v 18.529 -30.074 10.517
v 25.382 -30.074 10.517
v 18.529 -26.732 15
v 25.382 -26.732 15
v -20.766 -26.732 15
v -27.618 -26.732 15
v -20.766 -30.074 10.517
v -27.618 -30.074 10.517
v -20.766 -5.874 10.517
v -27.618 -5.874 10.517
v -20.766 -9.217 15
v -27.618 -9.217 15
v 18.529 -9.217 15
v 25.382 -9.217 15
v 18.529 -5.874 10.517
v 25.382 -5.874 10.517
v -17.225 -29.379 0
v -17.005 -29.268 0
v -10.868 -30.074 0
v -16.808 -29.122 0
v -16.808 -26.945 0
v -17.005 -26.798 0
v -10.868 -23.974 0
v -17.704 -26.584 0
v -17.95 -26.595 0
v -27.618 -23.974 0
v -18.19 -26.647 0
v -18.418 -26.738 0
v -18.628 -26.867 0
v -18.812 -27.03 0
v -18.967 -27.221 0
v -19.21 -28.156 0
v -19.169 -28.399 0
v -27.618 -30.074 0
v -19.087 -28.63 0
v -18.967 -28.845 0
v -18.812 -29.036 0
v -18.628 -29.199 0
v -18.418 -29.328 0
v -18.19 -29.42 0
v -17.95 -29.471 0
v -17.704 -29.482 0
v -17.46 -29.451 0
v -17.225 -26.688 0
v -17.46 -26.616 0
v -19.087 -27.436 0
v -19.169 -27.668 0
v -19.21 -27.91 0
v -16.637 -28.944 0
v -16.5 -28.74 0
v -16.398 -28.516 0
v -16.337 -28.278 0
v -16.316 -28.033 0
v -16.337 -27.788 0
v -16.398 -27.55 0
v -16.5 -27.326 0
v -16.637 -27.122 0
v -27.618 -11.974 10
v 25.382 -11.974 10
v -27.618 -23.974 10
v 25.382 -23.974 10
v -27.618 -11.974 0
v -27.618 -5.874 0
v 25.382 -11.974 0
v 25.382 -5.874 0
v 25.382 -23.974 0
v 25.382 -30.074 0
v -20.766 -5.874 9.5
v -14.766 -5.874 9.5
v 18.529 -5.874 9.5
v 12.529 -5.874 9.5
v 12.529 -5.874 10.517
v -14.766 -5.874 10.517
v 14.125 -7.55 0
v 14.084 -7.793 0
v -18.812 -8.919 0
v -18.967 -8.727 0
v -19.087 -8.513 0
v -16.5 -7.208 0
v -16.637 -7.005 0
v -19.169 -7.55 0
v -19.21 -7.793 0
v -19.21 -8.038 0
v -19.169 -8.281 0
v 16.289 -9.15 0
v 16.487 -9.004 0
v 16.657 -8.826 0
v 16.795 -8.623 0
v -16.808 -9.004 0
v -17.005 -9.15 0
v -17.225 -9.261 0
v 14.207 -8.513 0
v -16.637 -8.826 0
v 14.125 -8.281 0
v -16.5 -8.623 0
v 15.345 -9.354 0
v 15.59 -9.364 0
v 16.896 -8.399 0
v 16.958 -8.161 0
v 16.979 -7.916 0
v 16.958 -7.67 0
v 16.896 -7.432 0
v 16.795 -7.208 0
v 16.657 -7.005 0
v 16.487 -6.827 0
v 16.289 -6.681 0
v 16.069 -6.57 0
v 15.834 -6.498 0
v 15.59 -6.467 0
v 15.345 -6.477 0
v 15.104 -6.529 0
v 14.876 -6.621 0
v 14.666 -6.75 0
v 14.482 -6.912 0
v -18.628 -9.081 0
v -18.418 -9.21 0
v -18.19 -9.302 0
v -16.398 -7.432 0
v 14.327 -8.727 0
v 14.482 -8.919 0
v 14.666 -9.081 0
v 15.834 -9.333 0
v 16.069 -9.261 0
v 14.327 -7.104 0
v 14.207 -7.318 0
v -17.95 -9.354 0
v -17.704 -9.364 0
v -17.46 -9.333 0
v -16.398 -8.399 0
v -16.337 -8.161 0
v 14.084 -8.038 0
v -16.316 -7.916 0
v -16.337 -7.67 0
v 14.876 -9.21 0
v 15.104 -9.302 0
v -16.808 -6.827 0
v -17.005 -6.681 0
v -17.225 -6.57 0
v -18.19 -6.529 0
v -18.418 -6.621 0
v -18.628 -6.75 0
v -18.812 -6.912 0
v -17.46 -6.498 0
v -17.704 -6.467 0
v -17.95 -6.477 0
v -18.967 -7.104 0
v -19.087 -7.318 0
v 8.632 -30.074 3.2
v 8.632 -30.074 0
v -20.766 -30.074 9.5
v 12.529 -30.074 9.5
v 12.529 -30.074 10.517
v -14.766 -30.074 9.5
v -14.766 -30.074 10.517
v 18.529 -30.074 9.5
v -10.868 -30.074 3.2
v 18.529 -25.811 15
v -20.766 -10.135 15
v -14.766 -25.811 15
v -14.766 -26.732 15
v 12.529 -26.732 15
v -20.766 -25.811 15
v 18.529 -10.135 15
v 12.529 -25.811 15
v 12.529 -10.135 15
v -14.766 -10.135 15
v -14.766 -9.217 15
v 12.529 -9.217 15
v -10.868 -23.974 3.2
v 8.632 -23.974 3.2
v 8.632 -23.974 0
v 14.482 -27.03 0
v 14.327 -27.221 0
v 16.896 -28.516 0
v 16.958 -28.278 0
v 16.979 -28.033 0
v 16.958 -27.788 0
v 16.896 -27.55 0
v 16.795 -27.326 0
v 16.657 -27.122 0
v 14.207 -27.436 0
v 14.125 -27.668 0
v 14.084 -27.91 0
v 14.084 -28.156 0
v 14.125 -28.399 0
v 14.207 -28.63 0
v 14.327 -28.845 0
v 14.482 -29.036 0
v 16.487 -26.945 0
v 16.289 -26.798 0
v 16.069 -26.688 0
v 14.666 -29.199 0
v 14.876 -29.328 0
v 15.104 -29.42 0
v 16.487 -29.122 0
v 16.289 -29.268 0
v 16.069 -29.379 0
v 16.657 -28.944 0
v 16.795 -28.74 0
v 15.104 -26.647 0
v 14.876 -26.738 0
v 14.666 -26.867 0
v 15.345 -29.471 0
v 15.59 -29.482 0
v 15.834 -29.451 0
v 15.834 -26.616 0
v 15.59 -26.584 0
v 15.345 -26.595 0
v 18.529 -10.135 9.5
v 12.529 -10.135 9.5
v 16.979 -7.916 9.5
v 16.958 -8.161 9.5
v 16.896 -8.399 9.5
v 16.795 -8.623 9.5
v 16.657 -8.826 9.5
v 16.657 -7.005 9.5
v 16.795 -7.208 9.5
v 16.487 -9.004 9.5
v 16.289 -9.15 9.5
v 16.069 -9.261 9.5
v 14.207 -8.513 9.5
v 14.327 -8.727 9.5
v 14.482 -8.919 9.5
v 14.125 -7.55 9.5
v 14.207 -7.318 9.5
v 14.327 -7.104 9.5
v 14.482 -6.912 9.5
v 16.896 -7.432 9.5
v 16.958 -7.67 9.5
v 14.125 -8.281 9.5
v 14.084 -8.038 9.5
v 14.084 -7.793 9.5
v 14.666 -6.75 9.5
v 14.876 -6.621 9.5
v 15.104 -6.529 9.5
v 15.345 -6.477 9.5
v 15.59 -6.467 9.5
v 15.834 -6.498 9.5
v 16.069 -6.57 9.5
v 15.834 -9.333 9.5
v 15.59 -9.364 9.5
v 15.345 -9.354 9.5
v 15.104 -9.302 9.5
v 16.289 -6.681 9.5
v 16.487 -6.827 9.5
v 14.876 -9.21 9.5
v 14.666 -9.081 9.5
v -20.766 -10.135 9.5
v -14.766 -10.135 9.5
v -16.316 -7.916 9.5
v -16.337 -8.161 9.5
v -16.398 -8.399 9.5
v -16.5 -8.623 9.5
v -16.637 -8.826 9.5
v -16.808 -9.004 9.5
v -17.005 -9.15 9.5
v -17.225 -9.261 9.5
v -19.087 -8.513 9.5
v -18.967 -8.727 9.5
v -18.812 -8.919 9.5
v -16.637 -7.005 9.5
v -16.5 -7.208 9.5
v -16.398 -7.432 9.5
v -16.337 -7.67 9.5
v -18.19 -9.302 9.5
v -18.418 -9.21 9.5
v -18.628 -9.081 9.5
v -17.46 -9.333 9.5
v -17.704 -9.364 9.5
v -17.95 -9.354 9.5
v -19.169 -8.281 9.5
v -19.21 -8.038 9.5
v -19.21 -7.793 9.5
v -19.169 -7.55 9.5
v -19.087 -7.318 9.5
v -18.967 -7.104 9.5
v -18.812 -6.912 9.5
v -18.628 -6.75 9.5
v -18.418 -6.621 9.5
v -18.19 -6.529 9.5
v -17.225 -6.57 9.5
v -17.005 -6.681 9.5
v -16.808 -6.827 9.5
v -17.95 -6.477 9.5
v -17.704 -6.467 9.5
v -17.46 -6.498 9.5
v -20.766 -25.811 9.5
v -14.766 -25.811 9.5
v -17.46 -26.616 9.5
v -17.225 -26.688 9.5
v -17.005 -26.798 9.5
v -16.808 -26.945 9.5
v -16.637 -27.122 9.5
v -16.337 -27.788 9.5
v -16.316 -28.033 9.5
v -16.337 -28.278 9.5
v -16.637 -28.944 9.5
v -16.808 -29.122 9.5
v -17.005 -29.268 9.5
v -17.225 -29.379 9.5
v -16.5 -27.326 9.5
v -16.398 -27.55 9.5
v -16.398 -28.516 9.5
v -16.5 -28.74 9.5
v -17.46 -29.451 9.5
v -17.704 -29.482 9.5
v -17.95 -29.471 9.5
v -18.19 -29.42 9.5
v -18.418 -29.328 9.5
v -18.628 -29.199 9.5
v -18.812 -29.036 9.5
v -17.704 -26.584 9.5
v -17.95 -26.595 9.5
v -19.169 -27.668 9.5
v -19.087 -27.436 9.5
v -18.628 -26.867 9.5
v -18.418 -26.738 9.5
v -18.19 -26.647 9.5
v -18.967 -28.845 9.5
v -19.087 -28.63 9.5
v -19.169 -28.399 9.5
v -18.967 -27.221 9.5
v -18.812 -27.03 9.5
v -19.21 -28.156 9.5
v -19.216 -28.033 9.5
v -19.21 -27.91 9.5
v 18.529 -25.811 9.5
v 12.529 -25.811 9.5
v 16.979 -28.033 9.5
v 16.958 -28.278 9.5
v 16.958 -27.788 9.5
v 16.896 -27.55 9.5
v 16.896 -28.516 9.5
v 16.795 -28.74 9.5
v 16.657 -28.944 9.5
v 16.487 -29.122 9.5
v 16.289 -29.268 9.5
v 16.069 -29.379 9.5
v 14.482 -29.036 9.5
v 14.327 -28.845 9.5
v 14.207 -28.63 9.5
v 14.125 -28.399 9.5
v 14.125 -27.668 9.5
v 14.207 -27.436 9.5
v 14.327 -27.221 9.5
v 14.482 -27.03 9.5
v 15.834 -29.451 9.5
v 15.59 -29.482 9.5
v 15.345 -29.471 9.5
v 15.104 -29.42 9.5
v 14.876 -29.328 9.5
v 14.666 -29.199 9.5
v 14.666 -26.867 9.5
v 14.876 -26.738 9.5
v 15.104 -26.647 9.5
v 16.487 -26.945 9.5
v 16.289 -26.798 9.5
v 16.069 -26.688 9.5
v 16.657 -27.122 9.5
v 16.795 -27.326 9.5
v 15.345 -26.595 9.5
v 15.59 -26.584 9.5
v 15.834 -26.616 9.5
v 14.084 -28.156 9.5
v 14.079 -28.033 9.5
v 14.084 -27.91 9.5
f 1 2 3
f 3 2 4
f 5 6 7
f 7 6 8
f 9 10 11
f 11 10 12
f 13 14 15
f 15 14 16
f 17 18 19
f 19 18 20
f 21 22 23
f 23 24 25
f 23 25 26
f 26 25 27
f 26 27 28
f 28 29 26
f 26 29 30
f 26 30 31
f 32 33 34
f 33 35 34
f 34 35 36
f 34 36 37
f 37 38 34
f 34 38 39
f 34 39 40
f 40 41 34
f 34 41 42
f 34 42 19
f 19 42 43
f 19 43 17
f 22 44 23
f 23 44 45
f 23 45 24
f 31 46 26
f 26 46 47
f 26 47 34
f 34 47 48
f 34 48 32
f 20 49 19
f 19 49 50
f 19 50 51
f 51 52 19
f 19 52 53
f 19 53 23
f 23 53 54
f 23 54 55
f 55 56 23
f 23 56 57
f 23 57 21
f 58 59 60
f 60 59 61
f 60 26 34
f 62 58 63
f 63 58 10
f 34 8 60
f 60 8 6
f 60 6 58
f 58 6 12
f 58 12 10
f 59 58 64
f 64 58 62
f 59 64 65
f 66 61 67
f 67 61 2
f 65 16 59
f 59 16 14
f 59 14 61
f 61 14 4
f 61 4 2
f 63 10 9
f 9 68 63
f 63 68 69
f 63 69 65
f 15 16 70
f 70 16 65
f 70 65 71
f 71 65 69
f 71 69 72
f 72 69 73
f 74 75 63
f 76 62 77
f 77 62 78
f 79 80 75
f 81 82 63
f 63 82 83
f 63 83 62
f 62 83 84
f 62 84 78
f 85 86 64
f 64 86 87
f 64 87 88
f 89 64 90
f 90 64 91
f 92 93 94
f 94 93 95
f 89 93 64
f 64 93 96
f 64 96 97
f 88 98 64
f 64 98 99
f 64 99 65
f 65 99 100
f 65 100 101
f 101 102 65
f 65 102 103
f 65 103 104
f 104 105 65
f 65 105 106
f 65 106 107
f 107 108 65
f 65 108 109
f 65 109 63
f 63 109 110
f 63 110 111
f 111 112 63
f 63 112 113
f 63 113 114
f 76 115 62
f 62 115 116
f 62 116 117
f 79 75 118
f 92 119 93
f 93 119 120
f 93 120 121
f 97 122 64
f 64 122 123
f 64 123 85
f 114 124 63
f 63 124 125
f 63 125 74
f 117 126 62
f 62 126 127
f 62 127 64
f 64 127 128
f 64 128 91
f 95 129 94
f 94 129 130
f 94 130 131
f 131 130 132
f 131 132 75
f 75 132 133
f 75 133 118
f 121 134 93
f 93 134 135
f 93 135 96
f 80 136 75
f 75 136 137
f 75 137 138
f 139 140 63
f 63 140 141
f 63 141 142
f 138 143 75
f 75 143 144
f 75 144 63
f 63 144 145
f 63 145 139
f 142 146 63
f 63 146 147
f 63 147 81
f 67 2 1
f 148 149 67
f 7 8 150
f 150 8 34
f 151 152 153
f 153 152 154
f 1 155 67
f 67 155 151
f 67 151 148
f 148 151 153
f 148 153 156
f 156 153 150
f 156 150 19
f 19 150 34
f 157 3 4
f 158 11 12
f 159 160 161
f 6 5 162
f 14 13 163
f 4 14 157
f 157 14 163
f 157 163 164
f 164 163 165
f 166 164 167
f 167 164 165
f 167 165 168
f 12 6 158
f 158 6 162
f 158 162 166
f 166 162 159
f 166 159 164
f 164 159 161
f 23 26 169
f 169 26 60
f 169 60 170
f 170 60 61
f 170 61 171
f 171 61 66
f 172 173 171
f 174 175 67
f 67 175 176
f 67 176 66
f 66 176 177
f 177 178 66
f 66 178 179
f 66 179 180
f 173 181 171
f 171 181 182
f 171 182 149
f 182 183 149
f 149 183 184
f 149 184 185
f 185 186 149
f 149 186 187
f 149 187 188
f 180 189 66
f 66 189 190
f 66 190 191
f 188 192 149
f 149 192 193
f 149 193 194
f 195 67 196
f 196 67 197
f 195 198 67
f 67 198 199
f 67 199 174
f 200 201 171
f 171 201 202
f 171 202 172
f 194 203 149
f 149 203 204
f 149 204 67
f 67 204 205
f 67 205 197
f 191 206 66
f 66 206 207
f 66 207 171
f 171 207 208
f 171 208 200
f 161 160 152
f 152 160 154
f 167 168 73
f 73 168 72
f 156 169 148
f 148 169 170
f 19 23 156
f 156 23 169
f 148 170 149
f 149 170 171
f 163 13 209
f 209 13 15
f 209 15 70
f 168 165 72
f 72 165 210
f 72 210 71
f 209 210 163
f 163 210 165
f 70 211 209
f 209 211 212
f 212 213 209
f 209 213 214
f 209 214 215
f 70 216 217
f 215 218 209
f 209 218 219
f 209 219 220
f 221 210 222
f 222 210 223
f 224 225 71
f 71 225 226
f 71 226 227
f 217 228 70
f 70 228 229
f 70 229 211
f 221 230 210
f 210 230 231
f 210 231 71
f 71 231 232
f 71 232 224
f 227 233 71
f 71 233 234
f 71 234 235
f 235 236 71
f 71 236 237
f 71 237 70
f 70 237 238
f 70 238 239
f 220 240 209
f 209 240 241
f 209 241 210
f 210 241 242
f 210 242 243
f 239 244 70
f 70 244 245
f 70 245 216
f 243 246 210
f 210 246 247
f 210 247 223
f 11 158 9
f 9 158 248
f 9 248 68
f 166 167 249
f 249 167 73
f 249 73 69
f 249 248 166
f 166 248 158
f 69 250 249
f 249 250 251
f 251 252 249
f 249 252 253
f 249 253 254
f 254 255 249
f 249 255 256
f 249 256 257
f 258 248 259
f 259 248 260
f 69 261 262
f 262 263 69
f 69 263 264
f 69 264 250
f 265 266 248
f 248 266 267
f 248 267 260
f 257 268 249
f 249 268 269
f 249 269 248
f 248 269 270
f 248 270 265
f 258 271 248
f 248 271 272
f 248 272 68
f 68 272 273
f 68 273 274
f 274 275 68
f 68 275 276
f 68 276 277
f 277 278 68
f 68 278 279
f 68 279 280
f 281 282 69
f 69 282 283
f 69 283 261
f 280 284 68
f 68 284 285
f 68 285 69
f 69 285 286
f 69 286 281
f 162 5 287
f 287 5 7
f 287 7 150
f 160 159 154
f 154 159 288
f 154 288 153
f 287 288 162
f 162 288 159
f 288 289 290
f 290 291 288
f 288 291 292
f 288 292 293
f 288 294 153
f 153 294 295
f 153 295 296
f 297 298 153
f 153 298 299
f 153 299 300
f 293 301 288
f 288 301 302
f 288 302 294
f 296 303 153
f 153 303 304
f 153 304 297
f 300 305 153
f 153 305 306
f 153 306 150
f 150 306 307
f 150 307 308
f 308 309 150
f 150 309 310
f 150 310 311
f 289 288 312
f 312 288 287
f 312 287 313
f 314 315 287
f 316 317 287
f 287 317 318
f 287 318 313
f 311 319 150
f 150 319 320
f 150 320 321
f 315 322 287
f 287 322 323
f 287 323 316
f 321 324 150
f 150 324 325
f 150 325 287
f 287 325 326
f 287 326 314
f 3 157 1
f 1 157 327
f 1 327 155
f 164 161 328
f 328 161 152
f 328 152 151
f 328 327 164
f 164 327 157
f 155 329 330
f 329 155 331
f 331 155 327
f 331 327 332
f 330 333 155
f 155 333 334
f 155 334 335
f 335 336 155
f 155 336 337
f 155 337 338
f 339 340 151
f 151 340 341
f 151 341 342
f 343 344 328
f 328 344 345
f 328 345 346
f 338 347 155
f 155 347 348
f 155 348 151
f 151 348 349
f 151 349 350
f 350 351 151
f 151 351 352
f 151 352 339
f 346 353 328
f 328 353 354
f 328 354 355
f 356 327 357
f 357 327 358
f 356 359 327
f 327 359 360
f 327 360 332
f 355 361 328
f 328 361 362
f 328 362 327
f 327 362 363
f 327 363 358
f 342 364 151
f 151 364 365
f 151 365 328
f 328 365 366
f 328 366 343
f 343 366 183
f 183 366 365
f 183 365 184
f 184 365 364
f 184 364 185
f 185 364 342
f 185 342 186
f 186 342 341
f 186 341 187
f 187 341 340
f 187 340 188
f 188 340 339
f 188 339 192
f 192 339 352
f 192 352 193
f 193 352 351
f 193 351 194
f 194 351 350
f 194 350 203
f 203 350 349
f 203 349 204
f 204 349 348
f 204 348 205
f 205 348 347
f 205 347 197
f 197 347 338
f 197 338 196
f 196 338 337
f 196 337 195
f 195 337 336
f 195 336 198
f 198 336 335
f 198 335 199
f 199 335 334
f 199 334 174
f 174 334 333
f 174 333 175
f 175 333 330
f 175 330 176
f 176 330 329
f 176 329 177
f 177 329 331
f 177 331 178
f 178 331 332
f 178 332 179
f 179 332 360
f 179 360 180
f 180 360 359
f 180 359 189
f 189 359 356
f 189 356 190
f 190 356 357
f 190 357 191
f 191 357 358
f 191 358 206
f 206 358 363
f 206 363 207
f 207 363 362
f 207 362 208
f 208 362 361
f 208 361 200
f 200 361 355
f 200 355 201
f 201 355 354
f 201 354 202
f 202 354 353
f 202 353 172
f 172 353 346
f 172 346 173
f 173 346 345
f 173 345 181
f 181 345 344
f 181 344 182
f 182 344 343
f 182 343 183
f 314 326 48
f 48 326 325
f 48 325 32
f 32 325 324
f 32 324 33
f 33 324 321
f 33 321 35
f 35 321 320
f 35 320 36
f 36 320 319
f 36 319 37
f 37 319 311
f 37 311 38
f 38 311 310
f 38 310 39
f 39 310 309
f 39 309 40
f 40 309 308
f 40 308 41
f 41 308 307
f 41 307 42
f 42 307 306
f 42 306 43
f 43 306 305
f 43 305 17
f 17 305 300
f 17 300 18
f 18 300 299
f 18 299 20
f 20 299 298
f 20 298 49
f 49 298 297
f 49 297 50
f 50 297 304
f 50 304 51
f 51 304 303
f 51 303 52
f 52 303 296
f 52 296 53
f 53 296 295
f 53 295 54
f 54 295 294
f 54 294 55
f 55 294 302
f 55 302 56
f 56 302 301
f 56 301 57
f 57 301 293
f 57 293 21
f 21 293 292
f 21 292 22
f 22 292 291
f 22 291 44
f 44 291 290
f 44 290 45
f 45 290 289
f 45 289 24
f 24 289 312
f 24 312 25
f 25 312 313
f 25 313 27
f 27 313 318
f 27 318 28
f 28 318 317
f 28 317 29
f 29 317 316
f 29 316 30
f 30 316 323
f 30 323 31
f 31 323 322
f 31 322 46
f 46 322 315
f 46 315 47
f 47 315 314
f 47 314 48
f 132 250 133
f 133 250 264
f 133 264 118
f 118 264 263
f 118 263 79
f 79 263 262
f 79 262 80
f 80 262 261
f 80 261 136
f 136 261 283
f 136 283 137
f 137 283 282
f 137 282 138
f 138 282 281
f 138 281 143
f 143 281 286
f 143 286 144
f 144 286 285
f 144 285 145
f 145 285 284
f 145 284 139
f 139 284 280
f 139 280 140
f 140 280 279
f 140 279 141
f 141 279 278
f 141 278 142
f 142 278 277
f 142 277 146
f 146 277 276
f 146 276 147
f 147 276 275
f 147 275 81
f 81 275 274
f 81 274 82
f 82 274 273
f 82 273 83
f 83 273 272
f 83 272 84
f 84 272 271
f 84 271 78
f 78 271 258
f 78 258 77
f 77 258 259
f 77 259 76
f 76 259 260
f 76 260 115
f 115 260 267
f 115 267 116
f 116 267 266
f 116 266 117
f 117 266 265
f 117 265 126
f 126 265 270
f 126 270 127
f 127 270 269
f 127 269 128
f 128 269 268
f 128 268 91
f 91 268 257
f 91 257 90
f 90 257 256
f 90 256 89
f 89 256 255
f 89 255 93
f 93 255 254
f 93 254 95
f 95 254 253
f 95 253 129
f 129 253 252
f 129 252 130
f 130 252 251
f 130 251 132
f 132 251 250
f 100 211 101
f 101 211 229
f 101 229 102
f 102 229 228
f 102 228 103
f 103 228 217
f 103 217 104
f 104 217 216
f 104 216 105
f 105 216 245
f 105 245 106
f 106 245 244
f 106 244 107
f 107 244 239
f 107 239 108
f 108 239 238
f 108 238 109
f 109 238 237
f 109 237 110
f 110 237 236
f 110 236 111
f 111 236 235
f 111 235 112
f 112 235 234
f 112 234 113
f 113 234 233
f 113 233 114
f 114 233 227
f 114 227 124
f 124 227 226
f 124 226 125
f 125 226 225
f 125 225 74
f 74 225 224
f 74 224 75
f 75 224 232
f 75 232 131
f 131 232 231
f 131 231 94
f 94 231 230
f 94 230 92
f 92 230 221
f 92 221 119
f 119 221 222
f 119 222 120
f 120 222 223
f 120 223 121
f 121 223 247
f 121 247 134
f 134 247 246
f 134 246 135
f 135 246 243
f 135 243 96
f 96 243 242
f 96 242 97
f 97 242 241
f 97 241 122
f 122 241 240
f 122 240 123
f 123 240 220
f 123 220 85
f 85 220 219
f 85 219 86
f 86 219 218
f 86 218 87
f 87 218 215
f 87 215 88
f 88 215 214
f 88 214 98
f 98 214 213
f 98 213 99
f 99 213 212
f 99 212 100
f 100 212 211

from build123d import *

# Parameters (mm, degrees)
CROQUIS1_W                = 53
CROQUIS1_H                = 6.1
SALIENTE_EXTRUIR1_DEPTH   = 10
SALIENTE_EXTRUIR1_2_DEPTH = 10
CROQUIS2_W                = 53
CROQUIS2_H                = 24.2
SALIENTE_EXTRUIR2_DEPTH   = 5
CORTAR_EXTRUIR1_DEPTH     = 100
CROQUIS4_W                = 19.5
CROQUIS4_H                = 3.2
CORTAR_EXTRUIR2_DEPTH     = 10
CROQUIS5_W                = 6
CROQUIS5_H                = 4.263570071
CROQUIS5_H_2              = 4.260183182
CORTAR_EXTRUIR3_DEPTH     = 5.5
CROQUIS6_R                = 1.45
CORTAR_EXTRUIR4_DEPTH     = 20


with BuildPart() as part:
    # Croquis1 → Saliente-Extruir1 (new body)
    with BuildSketch(Plane.XY):
        with Locations((-1.118469745, -8.924349429)):
            Rectangle(CROQUIS1_W, CROQUIS1_H)
    extrude(amount=SALIENTE_EXTRUIR1_DEPTH)



with BuildPart() as body_2:
    # Croquis1 → Saliente-Extruir1 2 (new body)
    with BuildSketch(Plane.XY):
        with Locations((-1.118469745, -27.024349429)):
            Rectangle(CROQUIS1_W, CROQUIS1_H)
    extrude(amount=SALIENTE_EXTRUIR1_2_DEPTH)


with BuildPart() as part_1:
    add(part.part)

    add(body_2.part)  # Saliente-Extruir2 merges body 2
    # Croquis2 → Saliente-Extruir2 (add)
    with BuildSketch(Plane.XY.offset(10)):
        with Locations((-1.118469745, -17.974349429)):
            Rectangle(CROQUIS2_W, CROQUIS2_H)
    extrude(amount=SALIENTE_EXTRUIR2_DEPTH)

    # Croquis3 → Cortar-Extruir1 (cut)
    with BuildSketch(Plane.ZY.offset(27.618469745)):
        Polygon((10.51738062, -5.874349429), (15, -9.216602222), (15, -5.874349429), align=None)
        Polygon((15, -26.732096635), (15, -30.074349429), (10.51738062, -30.074349429), align=None)
    extrude(amount=-CORTAR_EXTRUIR1_DEPTH, mode=Mode.SUBTRACT)

    # Croquis4 → Cortar-Extruir2 (cut)
    with BuildSketch(Plane.XZ.offset(30.074349429)):
        with Locations((-1.118469745, 1.6)):
            Rectangle(CROQUIS4_W, CROQUIS4_H)
    extrude(amount=-CORTAR_EXTRUIR2_DEPTH, mode=Mode.SUBTRACT)

    # Croquis5 → Cortar-Extruir3 (cut)
    with BuildSketch(Plane.XY.offset(15)):
        with Locations((-17.765649999, -27.942564393)):
            Rectangle(CROQUIS5_W, CROQUIS5_H)
        with Locations((-17.765649999, -8.00444102)):
            Rectangle(CROQUIS5_W, CROQUIS5_H_2)
        with Locations((15.528710509, -27.942564393)):
            Rectangle(CROQUIS5_W, CROQUIS5_H)
        with Locations((15.528710509, -8.00444102)):
            Rectangle(CROQUIS5_W, CROQUIS5_H_2)
    extrude(amount=-CORTAR_EXTRUIR3_DEPTH, mode=Mode.SUBTRACT)

    # Croquis6 → Cortar-Extruir4 (cut)
    with BuildSketch(Plane.XY.offset(9.5)):
        with Locations((-17.765649999, -7.915512161)):
            Circle(CROQUIS6_R)
        with Locations((15.528710509, -7.915512161)):
            Circle(CROQUIS6_R)
        with Locations((15.528710509, -28.033186696)):
            Circle(CROQUIS6_R)
        with Locations((-17.765649999, -28.033186696)):
            Circle(CROQUIS6_R)
    extrude(amount=-CORTAR_EXTRUIR4_DEPTH, mode=Mode.SUBTRACT)


solid = part_1.part
